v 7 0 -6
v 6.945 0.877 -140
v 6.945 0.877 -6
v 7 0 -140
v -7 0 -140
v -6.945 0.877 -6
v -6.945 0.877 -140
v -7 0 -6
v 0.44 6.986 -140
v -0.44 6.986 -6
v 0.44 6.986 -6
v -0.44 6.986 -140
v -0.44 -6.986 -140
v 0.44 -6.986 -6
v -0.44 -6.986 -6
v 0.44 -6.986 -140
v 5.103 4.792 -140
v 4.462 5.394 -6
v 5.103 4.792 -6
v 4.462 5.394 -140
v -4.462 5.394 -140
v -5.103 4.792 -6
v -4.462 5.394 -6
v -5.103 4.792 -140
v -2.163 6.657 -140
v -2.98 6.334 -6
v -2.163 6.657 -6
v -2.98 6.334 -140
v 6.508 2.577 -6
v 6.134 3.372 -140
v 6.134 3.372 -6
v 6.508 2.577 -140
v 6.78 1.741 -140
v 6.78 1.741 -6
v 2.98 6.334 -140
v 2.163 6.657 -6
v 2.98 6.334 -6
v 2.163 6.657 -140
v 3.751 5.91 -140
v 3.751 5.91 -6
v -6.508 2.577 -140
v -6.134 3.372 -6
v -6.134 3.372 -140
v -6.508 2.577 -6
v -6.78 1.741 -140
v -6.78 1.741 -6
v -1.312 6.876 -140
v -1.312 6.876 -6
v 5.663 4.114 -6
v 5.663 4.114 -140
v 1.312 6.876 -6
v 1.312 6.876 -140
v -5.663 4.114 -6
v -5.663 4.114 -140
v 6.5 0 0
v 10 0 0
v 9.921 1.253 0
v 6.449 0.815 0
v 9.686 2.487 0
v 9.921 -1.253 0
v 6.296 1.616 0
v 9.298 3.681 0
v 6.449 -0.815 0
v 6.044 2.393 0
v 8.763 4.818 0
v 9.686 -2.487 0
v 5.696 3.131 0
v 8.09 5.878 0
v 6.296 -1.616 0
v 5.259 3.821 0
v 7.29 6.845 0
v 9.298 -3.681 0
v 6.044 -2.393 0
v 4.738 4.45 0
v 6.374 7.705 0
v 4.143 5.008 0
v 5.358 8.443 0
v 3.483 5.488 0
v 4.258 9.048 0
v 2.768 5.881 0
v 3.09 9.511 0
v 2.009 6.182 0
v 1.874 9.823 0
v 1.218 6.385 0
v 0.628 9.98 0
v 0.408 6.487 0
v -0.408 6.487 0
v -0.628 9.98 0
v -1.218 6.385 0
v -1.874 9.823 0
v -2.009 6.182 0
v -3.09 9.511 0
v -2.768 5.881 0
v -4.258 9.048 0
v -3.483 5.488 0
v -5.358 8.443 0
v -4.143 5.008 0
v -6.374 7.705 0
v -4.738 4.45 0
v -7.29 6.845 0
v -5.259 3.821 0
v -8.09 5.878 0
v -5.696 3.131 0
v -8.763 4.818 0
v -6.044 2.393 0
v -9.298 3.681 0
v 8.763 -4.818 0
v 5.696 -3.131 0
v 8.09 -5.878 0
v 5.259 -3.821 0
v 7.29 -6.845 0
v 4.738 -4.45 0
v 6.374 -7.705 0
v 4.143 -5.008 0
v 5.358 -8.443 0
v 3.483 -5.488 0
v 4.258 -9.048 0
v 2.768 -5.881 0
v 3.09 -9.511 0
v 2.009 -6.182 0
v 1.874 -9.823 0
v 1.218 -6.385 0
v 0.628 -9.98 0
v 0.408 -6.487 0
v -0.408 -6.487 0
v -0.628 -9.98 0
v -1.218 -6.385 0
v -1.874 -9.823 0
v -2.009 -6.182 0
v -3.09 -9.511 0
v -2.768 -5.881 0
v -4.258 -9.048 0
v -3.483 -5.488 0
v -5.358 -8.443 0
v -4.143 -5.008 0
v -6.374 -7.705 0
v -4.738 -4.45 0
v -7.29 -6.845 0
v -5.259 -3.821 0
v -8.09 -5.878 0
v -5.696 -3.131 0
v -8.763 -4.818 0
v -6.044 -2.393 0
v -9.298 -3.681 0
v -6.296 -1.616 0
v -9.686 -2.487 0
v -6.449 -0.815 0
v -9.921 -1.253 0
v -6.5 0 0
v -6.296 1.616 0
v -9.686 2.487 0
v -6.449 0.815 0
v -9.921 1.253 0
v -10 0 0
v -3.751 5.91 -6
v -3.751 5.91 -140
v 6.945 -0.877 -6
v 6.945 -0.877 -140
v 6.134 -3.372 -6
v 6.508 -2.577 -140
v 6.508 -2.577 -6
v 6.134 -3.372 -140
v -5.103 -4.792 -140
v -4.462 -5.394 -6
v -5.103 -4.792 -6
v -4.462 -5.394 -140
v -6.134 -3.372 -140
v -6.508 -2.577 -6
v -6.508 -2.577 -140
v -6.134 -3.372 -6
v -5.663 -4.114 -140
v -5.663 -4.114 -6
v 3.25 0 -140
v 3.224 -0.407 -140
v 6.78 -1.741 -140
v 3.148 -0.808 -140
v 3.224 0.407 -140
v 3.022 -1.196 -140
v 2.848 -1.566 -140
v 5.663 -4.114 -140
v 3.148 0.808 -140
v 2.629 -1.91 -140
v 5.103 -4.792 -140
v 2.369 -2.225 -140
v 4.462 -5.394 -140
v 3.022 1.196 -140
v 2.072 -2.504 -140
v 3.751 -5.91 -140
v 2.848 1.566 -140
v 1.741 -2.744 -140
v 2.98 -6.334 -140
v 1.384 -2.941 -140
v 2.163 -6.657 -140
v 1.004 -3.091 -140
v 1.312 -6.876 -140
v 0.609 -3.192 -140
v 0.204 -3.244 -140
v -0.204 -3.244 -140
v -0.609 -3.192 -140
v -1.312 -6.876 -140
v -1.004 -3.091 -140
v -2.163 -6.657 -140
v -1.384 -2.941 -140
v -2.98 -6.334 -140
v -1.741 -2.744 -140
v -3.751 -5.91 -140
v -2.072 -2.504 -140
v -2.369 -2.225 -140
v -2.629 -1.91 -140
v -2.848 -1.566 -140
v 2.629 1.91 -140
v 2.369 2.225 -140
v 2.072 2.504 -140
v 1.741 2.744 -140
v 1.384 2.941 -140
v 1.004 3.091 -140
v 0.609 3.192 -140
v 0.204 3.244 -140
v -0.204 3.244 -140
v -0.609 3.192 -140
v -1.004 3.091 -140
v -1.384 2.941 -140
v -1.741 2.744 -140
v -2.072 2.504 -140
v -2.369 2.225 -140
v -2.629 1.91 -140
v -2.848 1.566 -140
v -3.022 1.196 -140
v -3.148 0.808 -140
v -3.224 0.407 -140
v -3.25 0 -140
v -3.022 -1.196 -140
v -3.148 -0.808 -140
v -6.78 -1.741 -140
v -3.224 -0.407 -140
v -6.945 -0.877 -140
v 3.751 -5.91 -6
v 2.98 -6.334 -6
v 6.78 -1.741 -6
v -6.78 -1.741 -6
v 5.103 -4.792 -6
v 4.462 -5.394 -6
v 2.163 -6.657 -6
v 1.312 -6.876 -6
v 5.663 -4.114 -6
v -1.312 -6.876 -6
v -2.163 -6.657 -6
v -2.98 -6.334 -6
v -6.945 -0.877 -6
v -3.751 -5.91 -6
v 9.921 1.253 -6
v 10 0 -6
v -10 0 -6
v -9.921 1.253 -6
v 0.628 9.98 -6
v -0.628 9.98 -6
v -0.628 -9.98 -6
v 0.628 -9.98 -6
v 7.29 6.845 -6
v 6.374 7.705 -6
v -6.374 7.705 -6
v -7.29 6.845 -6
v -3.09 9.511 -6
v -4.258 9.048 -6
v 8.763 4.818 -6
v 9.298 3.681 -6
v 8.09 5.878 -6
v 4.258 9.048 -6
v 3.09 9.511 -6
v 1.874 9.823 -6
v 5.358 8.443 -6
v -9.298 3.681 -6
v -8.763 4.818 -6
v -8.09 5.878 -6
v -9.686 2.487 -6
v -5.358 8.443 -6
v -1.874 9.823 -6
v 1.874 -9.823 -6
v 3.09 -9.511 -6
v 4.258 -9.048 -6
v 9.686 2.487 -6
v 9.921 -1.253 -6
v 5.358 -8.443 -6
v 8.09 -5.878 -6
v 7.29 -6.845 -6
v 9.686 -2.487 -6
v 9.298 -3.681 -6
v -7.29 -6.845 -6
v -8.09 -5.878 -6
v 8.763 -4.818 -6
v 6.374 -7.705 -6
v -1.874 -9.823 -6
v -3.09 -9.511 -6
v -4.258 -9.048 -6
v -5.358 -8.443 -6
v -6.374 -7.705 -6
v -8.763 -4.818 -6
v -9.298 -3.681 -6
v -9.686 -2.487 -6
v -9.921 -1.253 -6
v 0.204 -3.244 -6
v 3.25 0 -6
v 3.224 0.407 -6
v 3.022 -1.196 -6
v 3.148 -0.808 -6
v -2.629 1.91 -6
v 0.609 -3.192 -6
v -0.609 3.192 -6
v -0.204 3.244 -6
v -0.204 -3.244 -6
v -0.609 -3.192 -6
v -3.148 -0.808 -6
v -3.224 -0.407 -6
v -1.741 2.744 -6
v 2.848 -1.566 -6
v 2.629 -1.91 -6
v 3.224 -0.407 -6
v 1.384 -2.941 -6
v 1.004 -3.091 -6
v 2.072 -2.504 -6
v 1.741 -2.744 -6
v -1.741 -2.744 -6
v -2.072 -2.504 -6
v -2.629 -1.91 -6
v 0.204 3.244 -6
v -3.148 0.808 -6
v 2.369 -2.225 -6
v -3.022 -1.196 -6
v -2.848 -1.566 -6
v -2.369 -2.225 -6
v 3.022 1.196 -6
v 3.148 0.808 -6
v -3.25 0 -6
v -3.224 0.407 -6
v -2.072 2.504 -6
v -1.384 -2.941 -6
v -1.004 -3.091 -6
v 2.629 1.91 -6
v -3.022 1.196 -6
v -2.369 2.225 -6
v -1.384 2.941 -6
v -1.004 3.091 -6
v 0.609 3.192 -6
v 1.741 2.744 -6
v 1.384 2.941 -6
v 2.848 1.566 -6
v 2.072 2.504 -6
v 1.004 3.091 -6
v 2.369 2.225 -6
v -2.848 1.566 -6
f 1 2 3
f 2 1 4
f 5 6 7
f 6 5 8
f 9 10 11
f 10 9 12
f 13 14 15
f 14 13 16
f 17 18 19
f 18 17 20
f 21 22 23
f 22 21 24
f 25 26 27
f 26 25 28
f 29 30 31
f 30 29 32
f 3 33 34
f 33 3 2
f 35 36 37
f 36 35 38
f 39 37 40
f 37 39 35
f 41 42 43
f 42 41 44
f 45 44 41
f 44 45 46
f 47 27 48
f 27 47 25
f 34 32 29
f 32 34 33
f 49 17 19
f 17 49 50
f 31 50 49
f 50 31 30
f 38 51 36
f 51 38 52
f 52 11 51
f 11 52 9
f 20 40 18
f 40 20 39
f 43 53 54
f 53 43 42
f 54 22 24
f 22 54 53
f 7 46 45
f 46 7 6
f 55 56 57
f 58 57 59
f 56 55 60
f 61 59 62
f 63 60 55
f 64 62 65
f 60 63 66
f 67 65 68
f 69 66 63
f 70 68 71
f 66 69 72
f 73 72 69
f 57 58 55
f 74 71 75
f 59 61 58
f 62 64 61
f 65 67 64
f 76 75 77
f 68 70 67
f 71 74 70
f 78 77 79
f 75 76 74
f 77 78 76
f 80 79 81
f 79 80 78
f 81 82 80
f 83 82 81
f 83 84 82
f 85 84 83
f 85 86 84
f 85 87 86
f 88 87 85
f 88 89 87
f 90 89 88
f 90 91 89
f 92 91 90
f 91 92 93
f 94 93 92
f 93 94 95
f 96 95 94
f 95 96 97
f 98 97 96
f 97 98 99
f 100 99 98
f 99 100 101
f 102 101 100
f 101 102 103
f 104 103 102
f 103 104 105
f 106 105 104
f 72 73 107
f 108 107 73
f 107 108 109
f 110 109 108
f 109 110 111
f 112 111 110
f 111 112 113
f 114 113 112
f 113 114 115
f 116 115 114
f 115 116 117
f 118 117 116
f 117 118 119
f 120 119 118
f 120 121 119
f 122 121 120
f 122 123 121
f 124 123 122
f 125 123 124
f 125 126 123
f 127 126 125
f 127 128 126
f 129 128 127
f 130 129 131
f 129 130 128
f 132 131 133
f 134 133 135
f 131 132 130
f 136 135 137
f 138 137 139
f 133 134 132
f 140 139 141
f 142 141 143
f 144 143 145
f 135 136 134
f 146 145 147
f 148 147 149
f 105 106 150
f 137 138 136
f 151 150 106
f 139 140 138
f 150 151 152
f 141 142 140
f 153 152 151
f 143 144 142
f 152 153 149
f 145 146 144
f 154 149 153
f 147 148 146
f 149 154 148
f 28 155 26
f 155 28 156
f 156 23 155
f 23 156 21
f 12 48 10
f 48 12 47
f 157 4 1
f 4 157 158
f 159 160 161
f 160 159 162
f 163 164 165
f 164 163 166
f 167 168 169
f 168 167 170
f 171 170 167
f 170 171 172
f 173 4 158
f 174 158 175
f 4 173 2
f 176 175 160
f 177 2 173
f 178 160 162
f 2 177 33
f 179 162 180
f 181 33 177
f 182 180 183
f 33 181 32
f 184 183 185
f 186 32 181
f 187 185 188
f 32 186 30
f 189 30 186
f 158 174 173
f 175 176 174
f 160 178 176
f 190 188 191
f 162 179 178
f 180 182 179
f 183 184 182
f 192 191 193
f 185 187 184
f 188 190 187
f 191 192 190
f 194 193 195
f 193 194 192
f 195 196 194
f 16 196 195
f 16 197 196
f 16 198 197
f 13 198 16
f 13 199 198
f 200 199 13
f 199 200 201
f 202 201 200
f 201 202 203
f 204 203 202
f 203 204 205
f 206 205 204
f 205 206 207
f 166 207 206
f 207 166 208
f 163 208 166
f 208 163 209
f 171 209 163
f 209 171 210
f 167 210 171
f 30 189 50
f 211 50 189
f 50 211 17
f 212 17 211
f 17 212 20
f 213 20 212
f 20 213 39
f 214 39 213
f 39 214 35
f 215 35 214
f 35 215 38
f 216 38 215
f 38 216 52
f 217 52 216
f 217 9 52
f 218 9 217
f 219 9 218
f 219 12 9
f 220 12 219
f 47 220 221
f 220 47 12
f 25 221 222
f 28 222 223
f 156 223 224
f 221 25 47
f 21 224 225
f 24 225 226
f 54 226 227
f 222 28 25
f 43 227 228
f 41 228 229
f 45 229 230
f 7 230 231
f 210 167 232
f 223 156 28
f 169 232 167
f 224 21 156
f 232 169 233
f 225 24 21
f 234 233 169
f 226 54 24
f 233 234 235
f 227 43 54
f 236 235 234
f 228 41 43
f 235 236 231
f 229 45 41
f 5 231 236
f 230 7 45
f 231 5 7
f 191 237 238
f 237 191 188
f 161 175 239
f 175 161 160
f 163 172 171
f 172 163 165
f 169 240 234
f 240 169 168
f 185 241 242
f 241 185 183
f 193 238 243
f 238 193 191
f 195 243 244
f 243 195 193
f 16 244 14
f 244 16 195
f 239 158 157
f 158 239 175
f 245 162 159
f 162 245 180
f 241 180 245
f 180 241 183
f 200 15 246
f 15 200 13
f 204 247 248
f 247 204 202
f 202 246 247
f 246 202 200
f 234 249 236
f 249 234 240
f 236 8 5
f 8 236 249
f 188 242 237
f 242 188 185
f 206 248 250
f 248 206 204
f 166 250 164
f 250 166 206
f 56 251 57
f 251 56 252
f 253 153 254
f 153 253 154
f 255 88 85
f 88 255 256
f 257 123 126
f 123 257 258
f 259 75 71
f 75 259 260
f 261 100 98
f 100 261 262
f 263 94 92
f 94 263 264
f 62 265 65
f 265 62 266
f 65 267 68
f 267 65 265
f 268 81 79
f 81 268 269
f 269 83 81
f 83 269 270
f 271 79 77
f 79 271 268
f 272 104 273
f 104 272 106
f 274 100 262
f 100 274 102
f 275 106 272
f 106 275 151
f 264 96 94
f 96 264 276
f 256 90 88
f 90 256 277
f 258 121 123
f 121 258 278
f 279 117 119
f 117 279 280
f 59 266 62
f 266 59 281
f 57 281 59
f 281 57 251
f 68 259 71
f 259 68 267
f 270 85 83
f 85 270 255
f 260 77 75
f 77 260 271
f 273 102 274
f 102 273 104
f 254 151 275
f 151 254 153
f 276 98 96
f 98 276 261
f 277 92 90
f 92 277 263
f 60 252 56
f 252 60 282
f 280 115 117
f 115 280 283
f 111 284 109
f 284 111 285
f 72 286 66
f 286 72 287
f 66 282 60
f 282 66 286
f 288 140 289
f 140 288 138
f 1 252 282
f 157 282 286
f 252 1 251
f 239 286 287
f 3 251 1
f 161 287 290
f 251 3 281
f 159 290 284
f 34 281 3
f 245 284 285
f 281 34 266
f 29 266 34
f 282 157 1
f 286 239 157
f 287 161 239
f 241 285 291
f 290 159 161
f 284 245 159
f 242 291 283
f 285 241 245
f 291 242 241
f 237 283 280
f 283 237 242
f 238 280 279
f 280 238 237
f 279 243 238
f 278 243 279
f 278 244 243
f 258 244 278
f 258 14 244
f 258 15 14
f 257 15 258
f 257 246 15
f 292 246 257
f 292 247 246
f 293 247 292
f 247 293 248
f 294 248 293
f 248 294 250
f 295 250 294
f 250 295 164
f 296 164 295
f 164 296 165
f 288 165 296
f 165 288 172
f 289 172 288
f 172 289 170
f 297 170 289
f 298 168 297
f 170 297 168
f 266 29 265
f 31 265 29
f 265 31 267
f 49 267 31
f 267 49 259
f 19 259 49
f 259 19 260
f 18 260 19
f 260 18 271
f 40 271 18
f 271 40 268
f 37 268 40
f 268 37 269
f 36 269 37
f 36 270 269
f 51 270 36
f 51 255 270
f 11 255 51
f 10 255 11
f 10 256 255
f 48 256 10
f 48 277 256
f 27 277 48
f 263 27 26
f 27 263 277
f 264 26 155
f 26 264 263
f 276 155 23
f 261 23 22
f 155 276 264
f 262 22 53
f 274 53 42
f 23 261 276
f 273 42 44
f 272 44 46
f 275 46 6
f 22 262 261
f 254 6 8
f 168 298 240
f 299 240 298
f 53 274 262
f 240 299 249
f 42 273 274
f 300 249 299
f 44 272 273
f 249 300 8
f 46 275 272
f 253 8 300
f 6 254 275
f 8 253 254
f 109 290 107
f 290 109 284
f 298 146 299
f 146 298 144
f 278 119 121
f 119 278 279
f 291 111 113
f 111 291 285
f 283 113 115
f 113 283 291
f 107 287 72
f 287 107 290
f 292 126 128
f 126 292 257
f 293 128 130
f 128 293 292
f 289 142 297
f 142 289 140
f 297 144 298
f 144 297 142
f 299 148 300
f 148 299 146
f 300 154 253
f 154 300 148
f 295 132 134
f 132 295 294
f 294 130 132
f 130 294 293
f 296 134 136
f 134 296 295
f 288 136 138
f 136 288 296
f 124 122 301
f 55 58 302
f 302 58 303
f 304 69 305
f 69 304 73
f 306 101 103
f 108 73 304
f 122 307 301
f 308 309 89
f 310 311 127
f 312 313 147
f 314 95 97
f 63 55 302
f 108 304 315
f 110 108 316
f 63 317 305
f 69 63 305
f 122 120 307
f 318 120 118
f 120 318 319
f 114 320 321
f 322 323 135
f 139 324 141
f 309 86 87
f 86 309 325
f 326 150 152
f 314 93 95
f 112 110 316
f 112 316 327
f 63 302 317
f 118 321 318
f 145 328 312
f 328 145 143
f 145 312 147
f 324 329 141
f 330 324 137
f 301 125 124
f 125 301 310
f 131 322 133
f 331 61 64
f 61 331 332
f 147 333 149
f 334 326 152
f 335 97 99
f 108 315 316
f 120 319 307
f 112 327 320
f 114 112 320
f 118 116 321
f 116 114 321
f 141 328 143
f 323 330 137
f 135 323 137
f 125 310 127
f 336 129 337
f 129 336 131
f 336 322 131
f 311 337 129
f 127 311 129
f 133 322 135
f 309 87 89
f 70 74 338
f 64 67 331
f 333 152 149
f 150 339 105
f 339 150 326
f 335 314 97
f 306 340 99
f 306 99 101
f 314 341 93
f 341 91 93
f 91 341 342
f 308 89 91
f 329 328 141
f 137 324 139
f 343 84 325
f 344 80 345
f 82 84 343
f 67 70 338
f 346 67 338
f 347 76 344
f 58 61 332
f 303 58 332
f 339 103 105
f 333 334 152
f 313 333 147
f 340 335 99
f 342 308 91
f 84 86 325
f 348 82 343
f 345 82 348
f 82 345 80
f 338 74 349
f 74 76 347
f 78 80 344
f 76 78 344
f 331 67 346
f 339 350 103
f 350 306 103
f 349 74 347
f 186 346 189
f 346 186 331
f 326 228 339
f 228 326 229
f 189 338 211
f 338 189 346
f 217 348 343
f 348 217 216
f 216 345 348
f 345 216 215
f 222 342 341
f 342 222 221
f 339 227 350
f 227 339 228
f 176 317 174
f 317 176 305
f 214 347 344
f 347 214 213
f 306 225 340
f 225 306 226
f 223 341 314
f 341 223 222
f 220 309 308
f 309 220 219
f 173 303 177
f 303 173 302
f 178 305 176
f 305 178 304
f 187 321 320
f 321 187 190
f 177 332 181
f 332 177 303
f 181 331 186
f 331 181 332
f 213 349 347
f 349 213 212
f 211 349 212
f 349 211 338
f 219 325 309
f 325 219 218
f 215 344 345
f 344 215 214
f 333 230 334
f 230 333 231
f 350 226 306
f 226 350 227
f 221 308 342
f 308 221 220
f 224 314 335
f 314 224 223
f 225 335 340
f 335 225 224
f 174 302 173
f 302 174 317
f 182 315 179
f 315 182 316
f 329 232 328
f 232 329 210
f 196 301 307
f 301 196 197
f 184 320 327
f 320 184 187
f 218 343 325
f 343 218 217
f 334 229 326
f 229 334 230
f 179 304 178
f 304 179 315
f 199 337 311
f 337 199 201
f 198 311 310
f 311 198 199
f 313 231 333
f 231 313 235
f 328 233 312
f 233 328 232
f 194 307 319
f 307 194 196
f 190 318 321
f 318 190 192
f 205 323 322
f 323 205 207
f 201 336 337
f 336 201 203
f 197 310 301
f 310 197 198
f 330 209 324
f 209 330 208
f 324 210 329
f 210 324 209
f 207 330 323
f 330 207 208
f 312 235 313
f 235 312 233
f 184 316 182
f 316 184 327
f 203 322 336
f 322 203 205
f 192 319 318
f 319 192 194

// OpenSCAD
$fn = 50;


difference() {
	union() {
		translate(v = [0, 0, -140.0000000000]) {
			cylinder(h = 140, r = 7.0000000000);
		}
		translate(v = [0, 0, -6.0000000000]) {
			cylinder(h = 6, r = 10.0000000000);
		}
	}
	union() {
		translate(v = [0, 0, 0]) {
			rotate(a = [0, 0, 0]) {
				difference() {
					union() {
						#translate(v = [0, 0, -140.0000000000]) {
							cylinder(h = 140, r = 2.2500000000);
						}
						#translate(v = [0, 0, -6]) {
							cylinder(h = 6, r1 = 3.2500000000, r2 = 6.5000000000);
						}
						#translate(v = [0, 0, -140.0000000000]) {
							cylinder(h = 140, r = 3.2500000000);
						}
						#translate(v = [0, 0, -140.0000000000]) {
							cylinder(h = 140, r = 2.2500000000);
						}
					}
					union();
				}
			}
		}
	}
}
